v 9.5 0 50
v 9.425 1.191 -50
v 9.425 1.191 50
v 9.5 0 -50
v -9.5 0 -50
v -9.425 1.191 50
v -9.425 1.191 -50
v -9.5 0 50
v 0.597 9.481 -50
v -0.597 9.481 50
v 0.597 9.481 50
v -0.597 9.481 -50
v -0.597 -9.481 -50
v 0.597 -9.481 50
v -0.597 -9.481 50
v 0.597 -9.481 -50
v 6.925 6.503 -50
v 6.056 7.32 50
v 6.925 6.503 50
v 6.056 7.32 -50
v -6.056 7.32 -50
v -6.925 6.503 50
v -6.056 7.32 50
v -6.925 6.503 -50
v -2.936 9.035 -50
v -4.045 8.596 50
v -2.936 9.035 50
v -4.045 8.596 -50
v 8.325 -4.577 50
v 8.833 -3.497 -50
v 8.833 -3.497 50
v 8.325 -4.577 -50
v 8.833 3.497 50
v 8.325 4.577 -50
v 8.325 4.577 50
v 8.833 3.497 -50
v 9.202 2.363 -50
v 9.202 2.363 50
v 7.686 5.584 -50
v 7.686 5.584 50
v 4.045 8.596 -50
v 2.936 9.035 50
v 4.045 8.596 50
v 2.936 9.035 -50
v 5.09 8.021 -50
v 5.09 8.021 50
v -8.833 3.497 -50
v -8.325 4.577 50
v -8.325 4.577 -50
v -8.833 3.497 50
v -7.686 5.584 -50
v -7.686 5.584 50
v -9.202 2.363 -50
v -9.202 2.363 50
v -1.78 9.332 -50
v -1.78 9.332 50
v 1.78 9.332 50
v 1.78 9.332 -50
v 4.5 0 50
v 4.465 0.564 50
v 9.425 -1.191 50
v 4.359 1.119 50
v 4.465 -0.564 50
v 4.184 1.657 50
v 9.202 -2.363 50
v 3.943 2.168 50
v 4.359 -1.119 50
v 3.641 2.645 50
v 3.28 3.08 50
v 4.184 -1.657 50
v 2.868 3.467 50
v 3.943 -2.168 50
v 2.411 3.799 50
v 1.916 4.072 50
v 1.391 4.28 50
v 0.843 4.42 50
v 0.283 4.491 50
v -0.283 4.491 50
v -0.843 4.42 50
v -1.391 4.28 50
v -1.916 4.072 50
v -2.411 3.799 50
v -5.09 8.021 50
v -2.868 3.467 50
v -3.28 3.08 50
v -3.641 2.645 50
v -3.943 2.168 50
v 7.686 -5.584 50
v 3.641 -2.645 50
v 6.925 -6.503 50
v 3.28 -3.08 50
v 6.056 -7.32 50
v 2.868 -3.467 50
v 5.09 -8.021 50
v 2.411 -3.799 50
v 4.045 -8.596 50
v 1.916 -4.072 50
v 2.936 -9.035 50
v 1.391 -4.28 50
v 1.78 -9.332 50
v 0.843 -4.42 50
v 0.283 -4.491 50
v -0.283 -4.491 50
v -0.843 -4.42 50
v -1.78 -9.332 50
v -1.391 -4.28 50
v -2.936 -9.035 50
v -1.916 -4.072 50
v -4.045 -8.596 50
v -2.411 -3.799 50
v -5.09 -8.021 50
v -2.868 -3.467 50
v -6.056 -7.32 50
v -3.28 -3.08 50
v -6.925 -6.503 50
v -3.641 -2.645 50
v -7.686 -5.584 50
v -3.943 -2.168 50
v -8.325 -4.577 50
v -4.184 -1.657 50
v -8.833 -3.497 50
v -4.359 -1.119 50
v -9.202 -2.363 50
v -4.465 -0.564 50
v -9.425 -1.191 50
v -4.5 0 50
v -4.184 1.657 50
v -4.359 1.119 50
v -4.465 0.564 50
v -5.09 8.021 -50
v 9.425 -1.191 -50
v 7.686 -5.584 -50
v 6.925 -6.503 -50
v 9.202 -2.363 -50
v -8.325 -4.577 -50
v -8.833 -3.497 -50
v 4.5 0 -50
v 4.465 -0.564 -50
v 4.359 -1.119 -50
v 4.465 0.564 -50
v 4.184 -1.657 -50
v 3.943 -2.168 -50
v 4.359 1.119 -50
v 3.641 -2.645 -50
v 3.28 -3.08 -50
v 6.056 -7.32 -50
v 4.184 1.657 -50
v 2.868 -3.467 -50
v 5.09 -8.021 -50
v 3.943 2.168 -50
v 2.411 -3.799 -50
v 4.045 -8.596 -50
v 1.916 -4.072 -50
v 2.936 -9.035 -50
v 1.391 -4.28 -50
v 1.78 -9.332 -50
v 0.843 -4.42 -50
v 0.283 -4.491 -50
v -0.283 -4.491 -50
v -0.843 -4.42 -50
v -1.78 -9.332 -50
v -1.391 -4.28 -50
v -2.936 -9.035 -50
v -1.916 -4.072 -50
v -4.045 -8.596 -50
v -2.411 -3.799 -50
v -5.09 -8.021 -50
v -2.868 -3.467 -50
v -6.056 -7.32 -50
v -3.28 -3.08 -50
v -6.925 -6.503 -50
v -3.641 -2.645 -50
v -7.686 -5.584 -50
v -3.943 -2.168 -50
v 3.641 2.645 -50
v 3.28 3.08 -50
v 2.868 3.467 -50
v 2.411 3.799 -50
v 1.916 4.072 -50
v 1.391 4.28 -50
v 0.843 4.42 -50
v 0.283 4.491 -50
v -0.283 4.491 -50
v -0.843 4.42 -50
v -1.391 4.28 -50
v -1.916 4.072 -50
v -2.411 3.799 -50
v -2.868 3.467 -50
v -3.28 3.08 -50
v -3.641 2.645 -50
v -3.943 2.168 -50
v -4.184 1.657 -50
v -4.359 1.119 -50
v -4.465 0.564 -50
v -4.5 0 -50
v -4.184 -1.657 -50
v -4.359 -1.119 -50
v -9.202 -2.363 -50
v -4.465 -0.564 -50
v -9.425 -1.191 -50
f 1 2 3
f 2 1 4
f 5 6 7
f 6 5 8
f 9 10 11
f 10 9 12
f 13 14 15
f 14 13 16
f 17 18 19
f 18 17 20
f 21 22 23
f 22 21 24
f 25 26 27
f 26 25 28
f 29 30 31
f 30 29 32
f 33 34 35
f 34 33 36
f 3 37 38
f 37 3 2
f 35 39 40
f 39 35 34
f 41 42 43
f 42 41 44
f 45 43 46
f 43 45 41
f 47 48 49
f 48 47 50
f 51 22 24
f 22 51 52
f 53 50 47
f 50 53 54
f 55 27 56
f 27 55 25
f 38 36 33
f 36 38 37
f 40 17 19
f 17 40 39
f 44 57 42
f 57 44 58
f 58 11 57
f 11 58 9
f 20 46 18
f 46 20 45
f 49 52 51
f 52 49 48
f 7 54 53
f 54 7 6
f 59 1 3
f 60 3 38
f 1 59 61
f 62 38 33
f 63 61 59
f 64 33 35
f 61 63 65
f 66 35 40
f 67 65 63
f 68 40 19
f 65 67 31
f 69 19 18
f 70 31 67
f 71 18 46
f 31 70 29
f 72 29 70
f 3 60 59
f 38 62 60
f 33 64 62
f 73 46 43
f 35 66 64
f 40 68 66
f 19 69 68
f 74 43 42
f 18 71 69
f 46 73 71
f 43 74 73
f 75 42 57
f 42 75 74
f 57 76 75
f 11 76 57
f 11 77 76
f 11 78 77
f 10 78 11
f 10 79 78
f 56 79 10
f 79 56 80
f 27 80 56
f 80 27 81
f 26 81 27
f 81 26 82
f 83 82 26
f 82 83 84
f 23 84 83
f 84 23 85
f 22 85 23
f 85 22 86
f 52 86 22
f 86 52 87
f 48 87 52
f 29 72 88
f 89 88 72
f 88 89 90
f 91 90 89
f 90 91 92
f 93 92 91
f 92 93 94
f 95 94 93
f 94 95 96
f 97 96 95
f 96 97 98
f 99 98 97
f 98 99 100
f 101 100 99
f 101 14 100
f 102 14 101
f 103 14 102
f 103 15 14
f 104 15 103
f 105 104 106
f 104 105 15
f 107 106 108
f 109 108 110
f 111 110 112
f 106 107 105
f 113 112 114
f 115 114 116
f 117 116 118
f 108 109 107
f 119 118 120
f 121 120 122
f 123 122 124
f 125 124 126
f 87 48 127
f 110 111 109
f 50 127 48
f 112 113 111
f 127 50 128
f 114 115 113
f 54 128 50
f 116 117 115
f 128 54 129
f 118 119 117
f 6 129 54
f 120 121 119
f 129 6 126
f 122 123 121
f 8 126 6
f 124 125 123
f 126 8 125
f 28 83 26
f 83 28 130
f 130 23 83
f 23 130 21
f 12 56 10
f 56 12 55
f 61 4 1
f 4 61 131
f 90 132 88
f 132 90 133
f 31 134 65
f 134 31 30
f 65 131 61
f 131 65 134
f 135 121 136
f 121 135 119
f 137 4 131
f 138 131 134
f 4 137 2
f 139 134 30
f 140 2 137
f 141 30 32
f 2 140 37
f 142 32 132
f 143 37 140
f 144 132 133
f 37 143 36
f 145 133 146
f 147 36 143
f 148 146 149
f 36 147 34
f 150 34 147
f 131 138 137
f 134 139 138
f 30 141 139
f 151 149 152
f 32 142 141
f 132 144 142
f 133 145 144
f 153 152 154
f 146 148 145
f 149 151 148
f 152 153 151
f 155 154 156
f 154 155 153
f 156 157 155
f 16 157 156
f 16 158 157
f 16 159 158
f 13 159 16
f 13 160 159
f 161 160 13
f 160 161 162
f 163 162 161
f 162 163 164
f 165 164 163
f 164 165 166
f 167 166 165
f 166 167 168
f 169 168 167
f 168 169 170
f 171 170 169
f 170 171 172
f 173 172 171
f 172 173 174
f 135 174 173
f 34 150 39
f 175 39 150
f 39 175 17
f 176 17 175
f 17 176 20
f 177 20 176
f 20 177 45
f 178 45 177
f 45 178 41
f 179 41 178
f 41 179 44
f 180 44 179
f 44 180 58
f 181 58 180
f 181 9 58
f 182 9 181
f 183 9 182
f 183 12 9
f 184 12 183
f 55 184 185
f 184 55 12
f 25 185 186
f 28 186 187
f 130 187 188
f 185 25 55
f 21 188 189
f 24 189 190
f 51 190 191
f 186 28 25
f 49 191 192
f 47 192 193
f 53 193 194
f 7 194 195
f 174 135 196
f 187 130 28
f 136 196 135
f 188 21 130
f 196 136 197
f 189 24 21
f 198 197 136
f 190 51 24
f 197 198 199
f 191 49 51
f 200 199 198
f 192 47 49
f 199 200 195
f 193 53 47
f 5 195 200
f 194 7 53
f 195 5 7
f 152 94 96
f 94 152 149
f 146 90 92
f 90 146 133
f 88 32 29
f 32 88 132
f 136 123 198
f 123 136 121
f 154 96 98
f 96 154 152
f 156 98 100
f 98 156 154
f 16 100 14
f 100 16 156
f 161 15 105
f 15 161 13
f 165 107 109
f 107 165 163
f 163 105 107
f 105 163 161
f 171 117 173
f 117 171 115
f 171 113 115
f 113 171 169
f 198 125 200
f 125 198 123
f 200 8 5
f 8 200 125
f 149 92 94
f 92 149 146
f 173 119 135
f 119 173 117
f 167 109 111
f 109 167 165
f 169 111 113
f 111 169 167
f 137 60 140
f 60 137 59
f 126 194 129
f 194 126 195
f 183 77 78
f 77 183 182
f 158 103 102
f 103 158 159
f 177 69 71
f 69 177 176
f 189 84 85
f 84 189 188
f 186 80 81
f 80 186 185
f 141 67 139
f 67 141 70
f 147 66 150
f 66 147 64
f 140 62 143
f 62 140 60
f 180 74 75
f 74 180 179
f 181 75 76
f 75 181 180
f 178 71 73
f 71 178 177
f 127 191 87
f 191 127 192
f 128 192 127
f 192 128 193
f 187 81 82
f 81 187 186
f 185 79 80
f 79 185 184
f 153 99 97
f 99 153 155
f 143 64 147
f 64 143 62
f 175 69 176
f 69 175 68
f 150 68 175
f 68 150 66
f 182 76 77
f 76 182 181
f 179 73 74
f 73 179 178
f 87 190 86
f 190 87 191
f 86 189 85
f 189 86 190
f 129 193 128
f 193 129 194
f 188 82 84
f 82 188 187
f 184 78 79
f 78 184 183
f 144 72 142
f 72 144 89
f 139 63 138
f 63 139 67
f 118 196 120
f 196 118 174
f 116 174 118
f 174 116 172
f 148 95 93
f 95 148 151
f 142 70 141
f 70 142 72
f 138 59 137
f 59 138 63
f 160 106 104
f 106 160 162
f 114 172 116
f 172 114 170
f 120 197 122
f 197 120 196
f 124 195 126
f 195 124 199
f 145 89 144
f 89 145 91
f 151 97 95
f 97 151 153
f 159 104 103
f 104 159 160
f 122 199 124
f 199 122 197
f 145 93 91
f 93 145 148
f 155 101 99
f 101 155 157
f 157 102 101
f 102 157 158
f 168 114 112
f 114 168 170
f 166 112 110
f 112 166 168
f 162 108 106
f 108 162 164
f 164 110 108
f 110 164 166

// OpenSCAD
$fn = 50;


difference() {
	union() {
		translate(v = [0, 0, -50.0000000000]) {
			cylinder(h = 100, r = 9.5000000000);
		}
	}
	union() {
		translate(v = [0, 0, -100.0000000000]) {
			cylinder(h = 200, r = 4.5000000000);
		}
	}
}
